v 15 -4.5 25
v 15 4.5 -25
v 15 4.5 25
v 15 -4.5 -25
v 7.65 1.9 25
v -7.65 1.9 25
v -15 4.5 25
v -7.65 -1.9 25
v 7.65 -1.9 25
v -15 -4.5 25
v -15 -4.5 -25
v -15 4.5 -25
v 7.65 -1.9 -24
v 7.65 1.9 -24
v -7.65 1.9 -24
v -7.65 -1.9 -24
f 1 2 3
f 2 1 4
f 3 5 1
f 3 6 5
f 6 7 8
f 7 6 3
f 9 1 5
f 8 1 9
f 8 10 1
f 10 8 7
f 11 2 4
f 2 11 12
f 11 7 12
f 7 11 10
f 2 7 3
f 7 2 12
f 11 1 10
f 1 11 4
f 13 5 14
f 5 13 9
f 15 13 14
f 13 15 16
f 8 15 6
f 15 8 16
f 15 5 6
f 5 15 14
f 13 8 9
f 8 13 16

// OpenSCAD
outer_x = 30;
outer_y = 9;
outer_z = 50;

inner_x = 15.3;
inner_y = 3.8;

difference() {
    cube([outer_x, outer_y, outer_z], center=true);
    translate([0, 0, 1])
        cube([inner_x, inner_y, outer_z], center=true);
}
